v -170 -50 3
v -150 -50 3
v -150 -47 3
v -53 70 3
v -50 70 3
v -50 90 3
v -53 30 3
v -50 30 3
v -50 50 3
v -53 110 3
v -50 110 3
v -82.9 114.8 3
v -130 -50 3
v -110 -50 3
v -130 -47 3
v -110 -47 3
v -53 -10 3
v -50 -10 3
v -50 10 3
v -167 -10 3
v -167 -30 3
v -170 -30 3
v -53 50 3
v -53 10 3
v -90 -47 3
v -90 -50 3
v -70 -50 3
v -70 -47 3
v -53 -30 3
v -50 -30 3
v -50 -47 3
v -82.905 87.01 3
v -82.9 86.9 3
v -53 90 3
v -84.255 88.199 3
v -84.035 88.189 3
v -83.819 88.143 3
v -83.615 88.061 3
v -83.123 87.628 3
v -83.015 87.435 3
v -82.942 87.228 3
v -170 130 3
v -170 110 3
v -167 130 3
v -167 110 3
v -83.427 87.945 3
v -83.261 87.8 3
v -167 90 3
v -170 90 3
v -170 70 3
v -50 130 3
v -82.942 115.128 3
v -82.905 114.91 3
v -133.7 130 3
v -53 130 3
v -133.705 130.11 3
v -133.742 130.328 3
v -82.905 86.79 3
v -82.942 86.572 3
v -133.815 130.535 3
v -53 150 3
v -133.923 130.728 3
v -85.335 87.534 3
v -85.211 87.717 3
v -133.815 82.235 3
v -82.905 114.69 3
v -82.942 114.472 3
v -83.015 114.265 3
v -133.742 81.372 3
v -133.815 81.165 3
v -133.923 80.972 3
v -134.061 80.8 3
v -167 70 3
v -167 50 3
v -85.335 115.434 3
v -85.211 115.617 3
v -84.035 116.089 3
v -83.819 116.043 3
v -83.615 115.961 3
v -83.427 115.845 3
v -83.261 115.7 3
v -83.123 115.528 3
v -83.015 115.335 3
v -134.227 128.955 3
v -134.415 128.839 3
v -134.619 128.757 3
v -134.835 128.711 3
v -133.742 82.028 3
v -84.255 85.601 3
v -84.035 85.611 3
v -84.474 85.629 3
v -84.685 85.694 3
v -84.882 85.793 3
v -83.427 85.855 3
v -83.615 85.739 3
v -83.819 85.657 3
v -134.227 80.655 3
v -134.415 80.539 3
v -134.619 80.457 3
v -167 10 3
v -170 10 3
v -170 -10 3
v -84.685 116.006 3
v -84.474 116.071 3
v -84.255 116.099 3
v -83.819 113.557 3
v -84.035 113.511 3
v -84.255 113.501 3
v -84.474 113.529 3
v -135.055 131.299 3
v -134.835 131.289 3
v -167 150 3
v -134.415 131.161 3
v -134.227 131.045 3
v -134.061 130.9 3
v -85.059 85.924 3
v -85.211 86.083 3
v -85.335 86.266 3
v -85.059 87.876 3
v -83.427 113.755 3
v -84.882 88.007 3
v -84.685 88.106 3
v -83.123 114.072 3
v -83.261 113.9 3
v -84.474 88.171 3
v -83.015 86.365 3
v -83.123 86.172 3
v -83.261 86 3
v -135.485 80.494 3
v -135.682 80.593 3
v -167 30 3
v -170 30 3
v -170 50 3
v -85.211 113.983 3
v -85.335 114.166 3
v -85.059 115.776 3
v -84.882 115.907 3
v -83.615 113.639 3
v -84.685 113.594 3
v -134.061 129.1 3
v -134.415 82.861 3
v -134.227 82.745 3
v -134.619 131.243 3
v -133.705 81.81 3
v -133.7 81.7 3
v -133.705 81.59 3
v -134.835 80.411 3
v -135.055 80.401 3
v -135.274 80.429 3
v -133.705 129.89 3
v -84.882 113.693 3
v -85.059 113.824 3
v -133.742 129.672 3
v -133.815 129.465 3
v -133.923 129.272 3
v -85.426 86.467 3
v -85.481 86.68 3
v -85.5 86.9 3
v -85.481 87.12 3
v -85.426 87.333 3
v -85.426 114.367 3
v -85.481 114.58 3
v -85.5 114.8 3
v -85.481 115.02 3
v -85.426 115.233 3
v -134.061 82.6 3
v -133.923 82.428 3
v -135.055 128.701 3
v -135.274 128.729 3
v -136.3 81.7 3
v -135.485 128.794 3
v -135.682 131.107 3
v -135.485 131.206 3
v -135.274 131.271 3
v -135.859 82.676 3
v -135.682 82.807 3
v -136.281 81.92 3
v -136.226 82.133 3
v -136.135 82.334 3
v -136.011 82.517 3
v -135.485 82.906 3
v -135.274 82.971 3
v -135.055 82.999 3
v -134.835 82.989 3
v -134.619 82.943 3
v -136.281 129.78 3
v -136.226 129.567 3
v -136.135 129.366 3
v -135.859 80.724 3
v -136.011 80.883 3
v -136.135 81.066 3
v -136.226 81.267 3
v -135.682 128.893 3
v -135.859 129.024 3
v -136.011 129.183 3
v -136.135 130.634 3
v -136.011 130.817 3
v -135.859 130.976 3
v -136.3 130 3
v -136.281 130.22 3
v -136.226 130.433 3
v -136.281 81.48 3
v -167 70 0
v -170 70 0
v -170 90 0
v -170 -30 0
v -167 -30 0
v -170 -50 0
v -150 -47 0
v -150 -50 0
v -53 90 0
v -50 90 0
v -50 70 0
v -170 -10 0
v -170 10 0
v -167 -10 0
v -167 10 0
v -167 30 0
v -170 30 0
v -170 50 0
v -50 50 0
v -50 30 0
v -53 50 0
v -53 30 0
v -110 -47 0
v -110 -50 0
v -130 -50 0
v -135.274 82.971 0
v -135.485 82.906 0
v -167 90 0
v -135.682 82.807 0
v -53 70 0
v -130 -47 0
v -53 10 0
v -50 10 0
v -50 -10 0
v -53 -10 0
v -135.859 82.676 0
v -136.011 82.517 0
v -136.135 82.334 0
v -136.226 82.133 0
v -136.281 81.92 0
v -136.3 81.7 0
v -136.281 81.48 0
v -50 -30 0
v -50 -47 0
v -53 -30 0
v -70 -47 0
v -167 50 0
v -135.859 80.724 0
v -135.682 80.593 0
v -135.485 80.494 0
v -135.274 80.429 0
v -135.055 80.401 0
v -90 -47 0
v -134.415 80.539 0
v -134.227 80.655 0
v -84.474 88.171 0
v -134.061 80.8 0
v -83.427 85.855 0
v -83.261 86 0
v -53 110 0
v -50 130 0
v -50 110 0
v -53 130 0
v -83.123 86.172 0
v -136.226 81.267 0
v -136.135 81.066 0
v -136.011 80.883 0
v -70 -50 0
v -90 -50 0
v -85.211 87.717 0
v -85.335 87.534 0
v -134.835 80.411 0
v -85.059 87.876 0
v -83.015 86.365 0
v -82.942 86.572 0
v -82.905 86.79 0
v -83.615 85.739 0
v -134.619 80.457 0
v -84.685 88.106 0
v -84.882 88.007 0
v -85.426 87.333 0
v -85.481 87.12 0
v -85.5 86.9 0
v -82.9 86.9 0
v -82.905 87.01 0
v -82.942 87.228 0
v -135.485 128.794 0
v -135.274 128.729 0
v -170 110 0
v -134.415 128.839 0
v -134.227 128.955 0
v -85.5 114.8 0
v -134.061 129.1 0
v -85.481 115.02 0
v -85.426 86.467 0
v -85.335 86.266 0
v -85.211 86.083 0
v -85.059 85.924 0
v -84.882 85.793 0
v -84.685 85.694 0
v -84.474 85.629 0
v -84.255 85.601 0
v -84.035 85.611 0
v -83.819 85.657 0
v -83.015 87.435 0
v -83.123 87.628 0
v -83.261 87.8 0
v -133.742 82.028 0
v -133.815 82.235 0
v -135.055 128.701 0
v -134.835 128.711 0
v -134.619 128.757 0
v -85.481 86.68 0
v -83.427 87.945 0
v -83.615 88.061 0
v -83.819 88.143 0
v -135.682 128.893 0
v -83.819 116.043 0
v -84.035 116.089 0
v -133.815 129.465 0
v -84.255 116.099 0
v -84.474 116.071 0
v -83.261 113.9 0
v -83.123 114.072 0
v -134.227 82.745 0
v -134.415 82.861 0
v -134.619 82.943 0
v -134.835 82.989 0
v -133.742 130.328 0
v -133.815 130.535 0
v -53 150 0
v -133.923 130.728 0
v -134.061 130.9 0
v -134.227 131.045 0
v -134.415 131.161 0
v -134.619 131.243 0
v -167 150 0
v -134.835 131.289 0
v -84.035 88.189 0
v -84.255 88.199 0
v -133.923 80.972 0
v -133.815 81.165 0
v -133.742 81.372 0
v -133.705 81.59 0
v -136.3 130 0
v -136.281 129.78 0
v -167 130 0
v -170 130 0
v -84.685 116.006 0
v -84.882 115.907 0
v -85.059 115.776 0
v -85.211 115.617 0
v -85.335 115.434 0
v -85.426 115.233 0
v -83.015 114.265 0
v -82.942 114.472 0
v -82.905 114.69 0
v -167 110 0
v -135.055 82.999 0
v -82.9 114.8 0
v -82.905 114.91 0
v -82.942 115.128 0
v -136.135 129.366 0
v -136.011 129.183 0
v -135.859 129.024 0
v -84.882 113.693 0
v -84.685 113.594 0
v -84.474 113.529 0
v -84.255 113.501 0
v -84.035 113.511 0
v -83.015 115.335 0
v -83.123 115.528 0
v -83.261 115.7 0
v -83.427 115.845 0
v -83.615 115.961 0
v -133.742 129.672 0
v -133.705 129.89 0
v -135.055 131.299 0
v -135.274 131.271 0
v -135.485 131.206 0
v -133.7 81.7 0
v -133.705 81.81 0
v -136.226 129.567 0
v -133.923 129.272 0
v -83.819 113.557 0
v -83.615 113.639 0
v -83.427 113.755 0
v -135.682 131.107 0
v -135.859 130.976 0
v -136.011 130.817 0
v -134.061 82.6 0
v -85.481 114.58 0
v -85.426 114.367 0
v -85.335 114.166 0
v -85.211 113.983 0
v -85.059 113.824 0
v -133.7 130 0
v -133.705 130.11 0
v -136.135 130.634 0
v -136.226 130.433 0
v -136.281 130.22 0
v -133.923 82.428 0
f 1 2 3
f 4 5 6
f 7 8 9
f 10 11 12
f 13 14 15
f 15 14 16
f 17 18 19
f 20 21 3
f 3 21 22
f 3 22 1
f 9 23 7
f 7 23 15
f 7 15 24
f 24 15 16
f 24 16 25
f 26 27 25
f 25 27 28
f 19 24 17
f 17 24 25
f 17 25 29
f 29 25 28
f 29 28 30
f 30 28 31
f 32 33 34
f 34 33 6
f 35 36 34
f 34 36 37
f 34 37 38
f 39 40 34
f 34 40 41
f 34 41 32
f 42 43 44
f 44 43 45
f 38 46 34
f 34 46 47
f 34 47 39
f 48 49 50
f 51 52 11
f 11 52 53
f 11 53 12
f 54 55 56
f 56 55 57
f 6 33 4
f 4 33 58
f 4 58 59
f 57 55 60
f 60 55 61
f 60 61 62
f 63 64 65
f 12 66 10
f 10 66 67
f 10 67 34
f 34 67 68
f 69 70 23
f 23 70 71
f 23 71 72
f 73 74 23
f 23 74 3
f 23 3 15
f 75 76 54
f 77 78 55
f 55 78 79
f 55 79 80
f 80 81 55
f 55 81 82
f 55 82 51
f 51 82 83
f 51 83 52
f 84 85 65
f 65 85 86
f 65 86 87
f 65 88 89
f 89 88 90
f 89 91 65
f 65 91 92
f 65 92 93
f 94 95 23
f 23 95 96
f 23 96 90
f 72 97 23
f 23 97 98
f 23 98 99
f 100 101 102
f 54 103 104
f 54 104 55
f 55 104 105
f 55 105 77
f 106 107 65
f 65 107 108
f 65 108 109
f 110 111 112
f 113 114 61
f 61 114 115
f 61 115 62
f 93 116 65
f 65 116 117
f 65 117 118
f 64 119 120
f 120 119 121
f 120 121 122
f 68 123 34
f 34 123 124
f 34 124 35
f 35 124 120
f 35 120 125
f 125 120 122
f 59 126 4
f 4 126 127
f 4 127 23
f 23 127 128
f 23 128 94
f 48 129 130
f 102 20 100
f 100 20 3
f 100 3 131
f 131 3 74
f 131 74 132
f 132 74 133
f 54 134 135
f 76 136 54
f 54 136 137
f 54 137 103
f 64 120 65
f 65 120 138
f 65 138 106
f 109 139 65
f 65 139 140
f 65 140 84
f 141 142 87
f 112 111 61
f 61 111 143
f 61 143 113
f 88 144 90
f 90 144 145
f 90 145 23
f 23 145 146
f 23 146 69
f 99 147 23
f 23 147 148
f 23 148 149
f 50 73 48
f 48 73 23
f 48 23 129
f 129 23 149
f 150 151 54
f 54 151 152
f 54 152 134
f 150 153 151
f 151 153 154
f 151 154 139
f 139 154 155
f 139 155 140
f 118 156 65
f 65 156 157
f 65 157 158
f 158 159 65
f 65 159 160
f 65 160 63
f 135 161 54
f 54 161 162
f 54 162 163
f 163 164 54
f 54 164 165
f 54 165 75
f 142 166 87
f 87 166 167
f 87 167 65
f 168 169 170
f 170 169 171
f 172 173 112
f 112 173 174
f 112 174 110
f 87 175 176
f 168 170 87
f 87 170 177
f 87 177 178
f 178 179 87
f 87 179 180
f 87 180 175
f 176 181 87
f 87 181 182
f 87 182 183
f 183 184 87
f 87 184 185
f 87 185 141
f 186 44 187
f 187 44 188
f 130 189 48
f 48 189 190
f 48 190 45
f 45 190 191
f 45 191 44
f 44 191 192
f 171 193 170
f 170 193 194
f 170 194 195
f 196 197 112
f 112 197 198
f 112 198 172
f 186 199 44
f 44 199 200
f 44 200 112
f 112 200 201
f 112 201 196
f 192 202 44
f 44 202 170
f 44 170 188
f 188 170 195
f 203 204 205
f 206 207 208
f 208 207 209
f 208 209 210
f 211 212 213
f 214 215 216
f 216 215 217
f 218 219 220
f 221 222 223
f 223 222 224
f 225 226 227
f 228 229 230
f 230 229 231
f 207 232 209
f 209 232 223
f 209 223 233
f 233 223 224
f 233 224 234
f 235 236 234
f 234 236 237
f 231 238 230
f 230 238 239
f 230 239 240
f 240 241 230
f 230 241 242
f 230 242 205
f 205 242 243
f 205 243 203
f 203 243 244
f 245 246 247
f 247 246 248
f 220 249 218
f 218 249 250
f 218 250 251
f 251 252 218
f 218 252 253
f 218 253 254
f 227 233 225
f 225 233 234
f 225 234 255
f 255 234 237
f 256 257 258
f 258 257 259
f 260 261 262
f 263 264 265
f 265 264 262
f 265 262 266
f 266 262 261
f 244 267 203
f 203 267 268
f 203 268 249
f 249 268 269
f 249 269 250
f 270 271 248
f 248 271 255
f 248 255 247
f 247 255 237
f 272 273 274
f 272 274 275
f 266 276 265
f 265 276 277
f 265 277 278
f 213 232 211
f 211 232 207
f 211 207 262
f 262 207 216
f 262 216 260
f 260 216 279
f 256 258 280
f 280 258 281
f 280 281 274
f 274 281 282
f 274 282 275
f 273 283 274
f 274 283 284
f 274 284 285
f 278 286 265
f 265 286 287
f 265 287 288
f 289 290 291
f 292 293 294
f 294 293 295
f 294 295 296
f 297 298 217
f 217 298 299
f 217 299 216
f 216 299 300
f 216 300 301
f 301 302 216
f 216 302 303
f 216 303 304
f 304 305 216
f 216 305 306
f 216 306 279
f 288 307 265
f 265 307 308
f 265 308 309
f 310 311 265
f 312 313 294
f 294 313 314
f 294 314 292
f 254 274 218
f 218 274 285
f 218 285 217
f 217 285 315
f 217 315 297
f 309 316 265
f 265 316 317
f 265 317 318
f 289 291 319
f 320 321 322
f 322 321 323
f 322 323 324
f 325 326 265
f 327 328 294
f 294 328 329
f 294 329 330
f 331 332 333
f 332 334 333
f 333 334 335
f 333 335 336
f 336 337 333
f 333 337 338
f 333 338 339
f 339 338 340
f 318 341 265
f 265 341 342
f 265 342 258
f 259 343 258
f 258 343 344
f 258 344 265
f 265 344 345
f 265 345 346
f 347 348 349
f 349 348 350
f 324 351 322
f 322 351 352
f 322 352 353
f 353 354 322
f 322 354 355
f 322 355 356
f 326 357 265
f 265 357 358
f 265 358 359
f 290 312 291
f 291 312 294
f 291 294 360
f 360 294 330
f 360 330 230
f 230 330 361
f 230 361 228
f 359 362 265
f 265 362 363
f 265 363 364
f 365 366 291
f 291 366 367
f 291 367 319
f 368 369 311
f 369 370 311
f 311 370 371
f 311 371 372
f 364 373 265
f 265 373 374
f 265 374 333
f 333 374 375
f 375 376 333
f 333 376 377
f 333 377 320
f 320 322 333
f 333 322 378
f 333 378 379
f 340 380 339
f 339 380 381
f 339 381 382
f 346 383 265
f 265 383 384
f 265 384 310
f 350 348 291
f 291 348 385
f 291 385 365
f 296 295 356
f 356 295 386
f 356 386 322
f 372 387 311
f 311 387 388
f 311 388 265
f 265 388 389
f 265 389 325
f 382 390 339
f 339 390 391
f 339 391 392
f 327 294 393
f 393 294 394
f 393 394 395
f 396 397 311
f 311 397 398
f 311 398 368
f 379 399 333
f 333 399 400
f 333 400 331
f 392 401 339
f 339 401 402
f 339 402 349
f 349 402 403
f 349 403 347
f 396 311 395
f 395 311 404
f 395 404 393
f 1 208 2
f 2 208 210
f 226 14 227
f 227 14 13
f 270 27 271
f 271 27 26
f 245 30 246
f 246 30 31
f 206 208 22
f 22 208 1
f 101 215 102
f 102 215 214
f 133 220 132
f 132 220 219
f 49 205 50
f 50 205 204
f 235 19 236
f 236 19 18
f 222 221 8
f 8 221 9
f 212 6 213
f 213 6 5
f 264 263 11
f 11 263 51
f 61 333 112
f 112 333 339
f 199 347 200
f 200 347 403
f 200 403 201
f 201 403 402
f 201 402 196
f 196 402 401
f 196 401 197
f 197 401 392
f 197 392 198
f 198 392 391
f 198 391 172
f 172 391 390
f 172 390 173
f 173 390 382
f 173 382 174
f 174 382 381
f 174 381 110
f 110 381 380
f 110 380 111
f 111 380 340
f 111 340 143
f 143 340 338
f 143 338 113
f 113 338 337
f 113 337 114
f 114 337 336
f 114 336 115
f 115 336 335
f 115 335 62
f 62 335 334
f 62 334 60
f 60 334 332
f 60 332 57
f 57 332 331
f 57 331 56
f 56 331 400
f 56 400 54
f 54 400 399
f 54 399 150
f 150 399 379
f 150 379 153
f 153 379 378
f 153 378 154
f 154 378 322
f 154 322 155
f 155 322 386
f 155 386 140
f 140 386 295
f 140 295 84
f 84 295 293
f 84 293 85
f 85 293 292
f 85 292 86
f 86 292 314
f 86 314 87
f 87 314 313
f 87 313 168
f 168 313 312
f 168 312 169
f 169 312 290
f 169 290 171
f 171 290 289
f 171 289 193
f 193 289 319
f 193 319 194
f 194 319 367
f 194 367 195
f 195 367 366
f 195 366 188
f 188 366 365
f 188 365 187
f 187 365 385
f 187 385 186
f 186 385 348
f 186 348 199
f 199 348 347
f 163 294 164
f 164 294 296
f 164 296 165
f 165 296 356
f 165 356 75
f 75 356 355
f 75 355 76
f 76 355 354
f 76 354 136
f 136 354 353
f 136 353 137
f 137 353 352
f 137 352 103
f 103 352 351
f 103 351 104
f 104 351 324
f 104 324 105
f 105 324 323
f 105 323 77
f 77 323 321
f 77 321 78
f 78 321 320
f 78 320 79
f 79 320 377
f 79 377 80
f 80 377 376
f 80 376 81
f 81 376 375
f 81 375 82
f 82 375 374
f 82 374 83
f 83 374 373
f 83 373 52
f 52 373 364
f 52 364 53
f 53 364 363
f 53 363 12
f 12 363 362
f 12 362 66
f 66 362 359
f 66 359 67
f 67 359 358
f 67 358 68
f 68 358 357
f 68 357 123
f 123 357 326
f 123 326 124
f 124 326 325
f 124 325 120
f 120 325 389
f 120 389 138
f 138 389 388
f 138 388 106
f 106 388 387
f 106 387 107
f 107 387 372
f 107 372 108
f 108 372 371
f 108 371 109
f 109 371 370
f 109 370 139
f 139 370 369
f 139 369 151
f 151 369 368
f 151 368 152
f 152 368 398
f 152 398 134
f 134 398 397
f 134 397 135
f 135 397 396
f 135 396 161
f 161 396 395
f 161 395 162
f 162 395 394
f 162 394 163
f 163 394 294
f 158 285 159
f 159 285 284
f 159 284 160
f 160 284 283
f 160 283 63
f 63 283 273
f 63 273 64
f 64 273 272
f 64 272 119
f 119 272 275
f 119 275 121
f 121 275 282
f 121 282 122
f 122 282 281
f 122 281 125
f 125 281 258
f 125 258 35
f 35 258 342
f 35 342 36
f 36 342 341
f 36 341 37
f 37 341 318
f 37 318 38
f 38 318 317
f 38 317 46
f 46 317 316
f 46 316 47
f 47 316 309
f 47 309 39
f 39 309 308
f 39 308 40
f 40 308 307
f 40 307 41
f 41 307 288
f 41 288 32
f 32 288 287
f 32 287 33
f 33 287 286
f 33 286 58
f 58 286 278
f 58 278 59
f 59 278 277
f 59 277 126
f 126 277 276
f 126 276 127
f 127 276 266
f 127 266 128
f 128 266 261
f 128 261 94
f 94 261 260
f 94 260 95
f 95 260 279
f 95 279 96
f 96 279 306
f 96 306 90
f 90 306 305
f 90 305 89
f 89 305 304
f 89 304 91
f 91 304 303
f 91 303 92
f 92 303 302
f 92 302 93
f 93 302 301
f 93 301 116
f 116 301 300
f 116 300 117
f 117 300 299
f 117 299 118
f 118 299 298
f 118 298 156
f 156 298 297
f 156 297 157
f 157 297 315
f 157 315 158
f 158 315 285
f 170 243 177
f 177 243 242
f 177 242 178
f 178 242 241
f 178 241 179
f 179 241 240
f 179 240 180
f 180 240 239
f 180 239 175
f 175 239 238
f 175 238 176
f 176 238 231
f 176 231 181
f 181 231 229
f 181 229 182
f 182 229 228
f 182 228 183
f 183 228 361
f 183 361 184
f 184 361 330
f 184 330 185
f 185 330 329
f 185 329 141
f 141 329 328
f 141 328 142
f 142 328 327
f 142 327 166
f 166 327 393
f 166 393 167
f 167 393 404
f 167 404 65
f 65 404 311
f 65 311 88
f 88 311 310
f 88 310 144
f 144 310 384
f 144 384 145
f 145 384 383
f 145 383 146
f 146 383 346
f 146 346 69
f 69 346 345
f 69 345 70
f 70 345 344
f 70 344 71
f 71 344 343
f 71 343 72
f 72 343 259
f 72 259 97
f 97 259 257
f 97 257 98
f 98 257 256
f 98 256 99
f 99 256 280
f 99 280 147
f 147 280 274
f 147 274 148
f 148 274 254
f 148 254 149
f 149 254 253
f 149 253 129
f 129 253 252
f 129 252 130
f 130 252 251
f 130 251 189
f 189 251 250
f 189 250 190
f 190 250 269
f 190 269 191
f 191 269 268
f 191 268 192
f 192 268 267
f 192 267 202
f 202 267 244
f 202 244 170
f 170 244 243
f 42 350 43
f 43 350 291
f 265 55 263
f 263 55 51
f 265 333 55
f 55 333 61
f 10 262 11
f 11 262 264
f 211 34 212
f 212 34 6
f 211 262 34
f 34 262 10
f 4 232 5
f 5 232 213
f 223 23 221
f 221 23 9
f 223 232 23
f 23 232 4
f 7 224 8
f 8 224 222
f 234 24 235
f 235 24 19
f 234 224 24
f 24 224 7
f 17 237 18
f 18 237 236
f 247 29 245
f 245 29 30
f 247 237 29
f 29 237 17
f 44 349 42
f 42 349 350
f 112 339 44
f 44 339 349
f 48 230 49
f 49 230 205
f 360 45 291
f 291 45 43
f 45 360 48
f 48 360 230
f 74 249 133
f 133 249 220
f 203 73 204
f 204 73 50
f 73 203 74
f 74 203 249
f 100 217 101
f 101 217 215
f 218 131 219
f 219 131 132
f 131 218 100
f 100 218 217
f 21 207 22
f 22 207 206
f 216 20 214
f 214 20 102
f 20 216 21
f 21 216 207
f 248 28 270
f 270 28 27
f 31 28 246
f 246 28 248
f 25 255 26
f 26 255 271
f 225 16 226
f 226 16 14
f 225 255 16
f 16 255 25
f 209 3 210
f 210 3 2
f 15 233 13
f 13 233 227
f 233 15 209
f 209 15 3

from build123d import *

# Parameters (mm, degrees)
SKETCH1_W           = 120
SKETCH1_H           = 200
SKETCH1_R           = 1.3
BOSS_EXTRUDE2_DEPTH = 3
SKETCH4_W           = 3
SKETCH4_H           = 20
CUT_EXTRUDE1_DEPTH  = 3
SKETCH5_W           = 3
SKETCH5_H           = 20
CUT_EXTRUDE2_DEPTH  = 3
SKETCH7_W           = 3
SKETCH7_H           = 20
CUT_EXTRUDE3_DEPTH  = 3
SKETCH8_W           = 3
SKETCH8_H           = 20
CUT_EXTRUDE4_DEPTH  = 3
SKETCH9_W           = 3
SKETCH9_H           = 20
CUT_EXTRUDE5_DEPTH  = 3
SKETCH11_W          = 3
SKETCH11_H          = 20
CUT_EXTRUDE7_DEPTH  = 3
SKETCH12_W          = 3
SKETCH12_H          = 20
CUT_EXTRUDE8_DEPTH  = 3
SKETCH13_W          = 3
SKETCH13_H          = 20
CUT_EXTRUDE9_DEPTH  = 3
SKETCH14_W          = 3
SKETCH14_H          = 20
CUT_EXTRUDE10_DEPTH = 3
SKETCH15_W          = 3
SKETCH15_H          = 20
CUT_EXTRUDE11_DEPTH = 3
SKETCH16_W          = 20
SKETCH16_H          = 3
CUT_EXTRUDE12_DEPTH = 3
SKETCH17_W          = 20
SKETCH17_H          = 3
CUT_EXTRUDE13_DEPTH = 3
SKETCH19_W          = 20
SKETCH19_H          = 3
CUT_EXTRUDE14_DEPTH = 3


with BuildPart() as part:
    # Sketch1 → Boss-Extrude2 (new body)
    with BuildSketch(Plane.XY):
        with Locations((-110, 50)):
            Rectangle(SKETCH1_W, SKETCH1_H)
        with Locations((-135, 130)):
            Circle(SKETCH1_R, mode=Mode.SUBTRACT)
        with Locations((-84.2, 114.8)):
            Circle(SKETCH1_R, mode=Mode.SUBTRACT)
        with Locations((-84.2, 86.9)):
            Circle(SKETCH1_R, mode=Mode.SUBTRACT)
        with Locations((-135, 81.7)):
            Circle(SKETCH1_R, mode=Mode.SUBTRACT)
    extrude(amount=BOSS_EXTRUDE2_DEPTH)

    # Sketch4 → Cut-Extrude1 (cut)
    with BuildSketch(Plane(origin=(-50, 0, 0), x_dir=(0, 0, -1), z_dir=(1, 0, 0))):
        with Locations((-1.5, 140)):
            Rectangle(SKETCH4_W, SKETCH4_H)
    extrude(amount=-CUT_EXTRUDE1_DEPTH, mode=Mode.SUBTRACT)

    # Sketch5 → Cut-Extrude2 (cut)
    with BuildSketch(Plane(origin=(-50, 0, 0), x_dir=(0, 0, -1), z_dir=(1, 0, 0))):
        with Locations((-1.5, 100)):
            Rectangle(SKETCH5_W, SKETCH5_H)
    extrude(amount=-CUT_EXTRUDE2_DEPTH, mode=Mode.SUBTRACT)

    # Sketch7 → Cut-Extrude3 (cut)
    with BuildSketch(Plane(origin=(-50, 0, 0), x_dir=(0, 0, -1), z_dir=(1, 0, 0))):
        with Locations((-1.5, 60)):
            Rectangle(SKETCH7_W, SKETCH7_H)
    extrude(amount=-CUT_EXTRUDE3_DEPTH, mode=Mode.SUBTRACT)

    # Sketch8 → Cut-Extrude4 (cut)
    with BuildSketch(Plane(origin=(-50, 0, 0), x_dir=(0, 0, -1), z_dir=(1, 0, 0))):
        with Locations((-1.5, 20)):
            Rectangle(SKETCH8_W, SKETCH8_H)
    extrude(amount=-CUT_EXTRUDE4_DEPTH, mode=Mode.SUBTRACT)

    # Sketch9 → Cut-Extrude5 (cut)
    with BuildSketch(Plane(origin=(-50, 0, 0), x_dir=(0, 0, -1), z_dir=(1, 0, 0))):
        with Locations((-1.5, -20)):
            Rectangle(SKETCH9_W, SKETCH9_H)
    extrude(amount=-CUT_EXTRUDE5_DEPTH, mode=Mode.SUBTRACT)

    # Sketch11 → Cut-Extrude7 (cut)
    with BuildSketch(Plane.ZY.offset(170)):
        with Locations((1.5, 140)):
            Rectangle(SKETCH11_W, SKETCH11_H)
    extrude(amount=-CUT_EXTRUDE7_DEPTH, mode=Mode.SUBTRACT)

    # Sketch12 → Cut-Extrude8 (cut)
    with BuildSketch(Plane.ZY.offset(170)):
        with Locations((1.5, 100)):
            Rectangle(SKETCH12_W, SKETCH12_H)
    extrude(amount=-CUT_EXTRUDE8_DEPTH, mode=Mode.SUBTRACT)

    # Sketch13 → Cut-Extrude9 (cut)
    with BuildSketch(Plane.ZY.offset(170)):
        with Locations((1.5, 60)):
            Rectangle(SKETCH13_W, SKETCH13_H)
    extrude(amount=-CUT_EXTRUDE9_DEPTH, mode=Mode.SUBTRACT)

    # Sketch14 → Cut-Extrude10 (cut)
    with BuildSketch(Plane.ZY.offset(170)):
        with Locations((1.5, 20)):
            Rectangle(SKETCH14_W, SKETCH14_H)
    extrude(amount=-CUT_EXTRUDE10_DEPTH, mode=Mode.SUBTRACT)

    # Sketch15 → Cut-Extrude11 (cut)
    with BuildSketch(Plane.ZY.offset(170)):
        with Locations((1.5, -20)):
            Rectangle(SKETCH15_W, SKETCH15_H)
    extrude(amount=-CUT_EXTRUDE11_DEPTH, mode=Mode.SUBTRACT)

    # Sketch16 → Cut-Extrude12 (cut)
    with BuildSketch(Plane(origin=(0, -50, 0), x_dir=(-1, 0, 0), z_dir=(0, -1, 0))):
        with Locations((60, -1.5)):
            Rectangle(SKETCH16_W, SKETCH16_H)
    extrude(amount=-CUT_EXTRUDE12_DEPTH, mode=Mode.SUBTRACT)

    # Sketch17 → Cut-Extrude13 (cut)
    with BuildSketch(Plane(origin=(0, -50, 0), x_dir=(-1, 0, 0), z_dir=(0, -1, 0))):
        with Locations((100, -1.5)):
            Rectangle(SKETCH17_W, SKETCH17_H)
    extrude(amount=-CUT_EXTRUDE13_DEPTH, mode=Mode.SUBTRACT)

    # Sketch19 → Cut-Extrude14 (cut)
    with BuildSketch(Plane(origin=(0, -50, 0), x_dir=(-1, 0, 0), z_dir=(0, -1, 0))):
        with Locations((140, -1.5)):
            Rectangle(SKETCH19_W, SKETCH19_H)
    extrude(amount=-CUT_EXTRUDE14_DEPTH, mode=Mode.SUBTRACT)


solid = part.part
